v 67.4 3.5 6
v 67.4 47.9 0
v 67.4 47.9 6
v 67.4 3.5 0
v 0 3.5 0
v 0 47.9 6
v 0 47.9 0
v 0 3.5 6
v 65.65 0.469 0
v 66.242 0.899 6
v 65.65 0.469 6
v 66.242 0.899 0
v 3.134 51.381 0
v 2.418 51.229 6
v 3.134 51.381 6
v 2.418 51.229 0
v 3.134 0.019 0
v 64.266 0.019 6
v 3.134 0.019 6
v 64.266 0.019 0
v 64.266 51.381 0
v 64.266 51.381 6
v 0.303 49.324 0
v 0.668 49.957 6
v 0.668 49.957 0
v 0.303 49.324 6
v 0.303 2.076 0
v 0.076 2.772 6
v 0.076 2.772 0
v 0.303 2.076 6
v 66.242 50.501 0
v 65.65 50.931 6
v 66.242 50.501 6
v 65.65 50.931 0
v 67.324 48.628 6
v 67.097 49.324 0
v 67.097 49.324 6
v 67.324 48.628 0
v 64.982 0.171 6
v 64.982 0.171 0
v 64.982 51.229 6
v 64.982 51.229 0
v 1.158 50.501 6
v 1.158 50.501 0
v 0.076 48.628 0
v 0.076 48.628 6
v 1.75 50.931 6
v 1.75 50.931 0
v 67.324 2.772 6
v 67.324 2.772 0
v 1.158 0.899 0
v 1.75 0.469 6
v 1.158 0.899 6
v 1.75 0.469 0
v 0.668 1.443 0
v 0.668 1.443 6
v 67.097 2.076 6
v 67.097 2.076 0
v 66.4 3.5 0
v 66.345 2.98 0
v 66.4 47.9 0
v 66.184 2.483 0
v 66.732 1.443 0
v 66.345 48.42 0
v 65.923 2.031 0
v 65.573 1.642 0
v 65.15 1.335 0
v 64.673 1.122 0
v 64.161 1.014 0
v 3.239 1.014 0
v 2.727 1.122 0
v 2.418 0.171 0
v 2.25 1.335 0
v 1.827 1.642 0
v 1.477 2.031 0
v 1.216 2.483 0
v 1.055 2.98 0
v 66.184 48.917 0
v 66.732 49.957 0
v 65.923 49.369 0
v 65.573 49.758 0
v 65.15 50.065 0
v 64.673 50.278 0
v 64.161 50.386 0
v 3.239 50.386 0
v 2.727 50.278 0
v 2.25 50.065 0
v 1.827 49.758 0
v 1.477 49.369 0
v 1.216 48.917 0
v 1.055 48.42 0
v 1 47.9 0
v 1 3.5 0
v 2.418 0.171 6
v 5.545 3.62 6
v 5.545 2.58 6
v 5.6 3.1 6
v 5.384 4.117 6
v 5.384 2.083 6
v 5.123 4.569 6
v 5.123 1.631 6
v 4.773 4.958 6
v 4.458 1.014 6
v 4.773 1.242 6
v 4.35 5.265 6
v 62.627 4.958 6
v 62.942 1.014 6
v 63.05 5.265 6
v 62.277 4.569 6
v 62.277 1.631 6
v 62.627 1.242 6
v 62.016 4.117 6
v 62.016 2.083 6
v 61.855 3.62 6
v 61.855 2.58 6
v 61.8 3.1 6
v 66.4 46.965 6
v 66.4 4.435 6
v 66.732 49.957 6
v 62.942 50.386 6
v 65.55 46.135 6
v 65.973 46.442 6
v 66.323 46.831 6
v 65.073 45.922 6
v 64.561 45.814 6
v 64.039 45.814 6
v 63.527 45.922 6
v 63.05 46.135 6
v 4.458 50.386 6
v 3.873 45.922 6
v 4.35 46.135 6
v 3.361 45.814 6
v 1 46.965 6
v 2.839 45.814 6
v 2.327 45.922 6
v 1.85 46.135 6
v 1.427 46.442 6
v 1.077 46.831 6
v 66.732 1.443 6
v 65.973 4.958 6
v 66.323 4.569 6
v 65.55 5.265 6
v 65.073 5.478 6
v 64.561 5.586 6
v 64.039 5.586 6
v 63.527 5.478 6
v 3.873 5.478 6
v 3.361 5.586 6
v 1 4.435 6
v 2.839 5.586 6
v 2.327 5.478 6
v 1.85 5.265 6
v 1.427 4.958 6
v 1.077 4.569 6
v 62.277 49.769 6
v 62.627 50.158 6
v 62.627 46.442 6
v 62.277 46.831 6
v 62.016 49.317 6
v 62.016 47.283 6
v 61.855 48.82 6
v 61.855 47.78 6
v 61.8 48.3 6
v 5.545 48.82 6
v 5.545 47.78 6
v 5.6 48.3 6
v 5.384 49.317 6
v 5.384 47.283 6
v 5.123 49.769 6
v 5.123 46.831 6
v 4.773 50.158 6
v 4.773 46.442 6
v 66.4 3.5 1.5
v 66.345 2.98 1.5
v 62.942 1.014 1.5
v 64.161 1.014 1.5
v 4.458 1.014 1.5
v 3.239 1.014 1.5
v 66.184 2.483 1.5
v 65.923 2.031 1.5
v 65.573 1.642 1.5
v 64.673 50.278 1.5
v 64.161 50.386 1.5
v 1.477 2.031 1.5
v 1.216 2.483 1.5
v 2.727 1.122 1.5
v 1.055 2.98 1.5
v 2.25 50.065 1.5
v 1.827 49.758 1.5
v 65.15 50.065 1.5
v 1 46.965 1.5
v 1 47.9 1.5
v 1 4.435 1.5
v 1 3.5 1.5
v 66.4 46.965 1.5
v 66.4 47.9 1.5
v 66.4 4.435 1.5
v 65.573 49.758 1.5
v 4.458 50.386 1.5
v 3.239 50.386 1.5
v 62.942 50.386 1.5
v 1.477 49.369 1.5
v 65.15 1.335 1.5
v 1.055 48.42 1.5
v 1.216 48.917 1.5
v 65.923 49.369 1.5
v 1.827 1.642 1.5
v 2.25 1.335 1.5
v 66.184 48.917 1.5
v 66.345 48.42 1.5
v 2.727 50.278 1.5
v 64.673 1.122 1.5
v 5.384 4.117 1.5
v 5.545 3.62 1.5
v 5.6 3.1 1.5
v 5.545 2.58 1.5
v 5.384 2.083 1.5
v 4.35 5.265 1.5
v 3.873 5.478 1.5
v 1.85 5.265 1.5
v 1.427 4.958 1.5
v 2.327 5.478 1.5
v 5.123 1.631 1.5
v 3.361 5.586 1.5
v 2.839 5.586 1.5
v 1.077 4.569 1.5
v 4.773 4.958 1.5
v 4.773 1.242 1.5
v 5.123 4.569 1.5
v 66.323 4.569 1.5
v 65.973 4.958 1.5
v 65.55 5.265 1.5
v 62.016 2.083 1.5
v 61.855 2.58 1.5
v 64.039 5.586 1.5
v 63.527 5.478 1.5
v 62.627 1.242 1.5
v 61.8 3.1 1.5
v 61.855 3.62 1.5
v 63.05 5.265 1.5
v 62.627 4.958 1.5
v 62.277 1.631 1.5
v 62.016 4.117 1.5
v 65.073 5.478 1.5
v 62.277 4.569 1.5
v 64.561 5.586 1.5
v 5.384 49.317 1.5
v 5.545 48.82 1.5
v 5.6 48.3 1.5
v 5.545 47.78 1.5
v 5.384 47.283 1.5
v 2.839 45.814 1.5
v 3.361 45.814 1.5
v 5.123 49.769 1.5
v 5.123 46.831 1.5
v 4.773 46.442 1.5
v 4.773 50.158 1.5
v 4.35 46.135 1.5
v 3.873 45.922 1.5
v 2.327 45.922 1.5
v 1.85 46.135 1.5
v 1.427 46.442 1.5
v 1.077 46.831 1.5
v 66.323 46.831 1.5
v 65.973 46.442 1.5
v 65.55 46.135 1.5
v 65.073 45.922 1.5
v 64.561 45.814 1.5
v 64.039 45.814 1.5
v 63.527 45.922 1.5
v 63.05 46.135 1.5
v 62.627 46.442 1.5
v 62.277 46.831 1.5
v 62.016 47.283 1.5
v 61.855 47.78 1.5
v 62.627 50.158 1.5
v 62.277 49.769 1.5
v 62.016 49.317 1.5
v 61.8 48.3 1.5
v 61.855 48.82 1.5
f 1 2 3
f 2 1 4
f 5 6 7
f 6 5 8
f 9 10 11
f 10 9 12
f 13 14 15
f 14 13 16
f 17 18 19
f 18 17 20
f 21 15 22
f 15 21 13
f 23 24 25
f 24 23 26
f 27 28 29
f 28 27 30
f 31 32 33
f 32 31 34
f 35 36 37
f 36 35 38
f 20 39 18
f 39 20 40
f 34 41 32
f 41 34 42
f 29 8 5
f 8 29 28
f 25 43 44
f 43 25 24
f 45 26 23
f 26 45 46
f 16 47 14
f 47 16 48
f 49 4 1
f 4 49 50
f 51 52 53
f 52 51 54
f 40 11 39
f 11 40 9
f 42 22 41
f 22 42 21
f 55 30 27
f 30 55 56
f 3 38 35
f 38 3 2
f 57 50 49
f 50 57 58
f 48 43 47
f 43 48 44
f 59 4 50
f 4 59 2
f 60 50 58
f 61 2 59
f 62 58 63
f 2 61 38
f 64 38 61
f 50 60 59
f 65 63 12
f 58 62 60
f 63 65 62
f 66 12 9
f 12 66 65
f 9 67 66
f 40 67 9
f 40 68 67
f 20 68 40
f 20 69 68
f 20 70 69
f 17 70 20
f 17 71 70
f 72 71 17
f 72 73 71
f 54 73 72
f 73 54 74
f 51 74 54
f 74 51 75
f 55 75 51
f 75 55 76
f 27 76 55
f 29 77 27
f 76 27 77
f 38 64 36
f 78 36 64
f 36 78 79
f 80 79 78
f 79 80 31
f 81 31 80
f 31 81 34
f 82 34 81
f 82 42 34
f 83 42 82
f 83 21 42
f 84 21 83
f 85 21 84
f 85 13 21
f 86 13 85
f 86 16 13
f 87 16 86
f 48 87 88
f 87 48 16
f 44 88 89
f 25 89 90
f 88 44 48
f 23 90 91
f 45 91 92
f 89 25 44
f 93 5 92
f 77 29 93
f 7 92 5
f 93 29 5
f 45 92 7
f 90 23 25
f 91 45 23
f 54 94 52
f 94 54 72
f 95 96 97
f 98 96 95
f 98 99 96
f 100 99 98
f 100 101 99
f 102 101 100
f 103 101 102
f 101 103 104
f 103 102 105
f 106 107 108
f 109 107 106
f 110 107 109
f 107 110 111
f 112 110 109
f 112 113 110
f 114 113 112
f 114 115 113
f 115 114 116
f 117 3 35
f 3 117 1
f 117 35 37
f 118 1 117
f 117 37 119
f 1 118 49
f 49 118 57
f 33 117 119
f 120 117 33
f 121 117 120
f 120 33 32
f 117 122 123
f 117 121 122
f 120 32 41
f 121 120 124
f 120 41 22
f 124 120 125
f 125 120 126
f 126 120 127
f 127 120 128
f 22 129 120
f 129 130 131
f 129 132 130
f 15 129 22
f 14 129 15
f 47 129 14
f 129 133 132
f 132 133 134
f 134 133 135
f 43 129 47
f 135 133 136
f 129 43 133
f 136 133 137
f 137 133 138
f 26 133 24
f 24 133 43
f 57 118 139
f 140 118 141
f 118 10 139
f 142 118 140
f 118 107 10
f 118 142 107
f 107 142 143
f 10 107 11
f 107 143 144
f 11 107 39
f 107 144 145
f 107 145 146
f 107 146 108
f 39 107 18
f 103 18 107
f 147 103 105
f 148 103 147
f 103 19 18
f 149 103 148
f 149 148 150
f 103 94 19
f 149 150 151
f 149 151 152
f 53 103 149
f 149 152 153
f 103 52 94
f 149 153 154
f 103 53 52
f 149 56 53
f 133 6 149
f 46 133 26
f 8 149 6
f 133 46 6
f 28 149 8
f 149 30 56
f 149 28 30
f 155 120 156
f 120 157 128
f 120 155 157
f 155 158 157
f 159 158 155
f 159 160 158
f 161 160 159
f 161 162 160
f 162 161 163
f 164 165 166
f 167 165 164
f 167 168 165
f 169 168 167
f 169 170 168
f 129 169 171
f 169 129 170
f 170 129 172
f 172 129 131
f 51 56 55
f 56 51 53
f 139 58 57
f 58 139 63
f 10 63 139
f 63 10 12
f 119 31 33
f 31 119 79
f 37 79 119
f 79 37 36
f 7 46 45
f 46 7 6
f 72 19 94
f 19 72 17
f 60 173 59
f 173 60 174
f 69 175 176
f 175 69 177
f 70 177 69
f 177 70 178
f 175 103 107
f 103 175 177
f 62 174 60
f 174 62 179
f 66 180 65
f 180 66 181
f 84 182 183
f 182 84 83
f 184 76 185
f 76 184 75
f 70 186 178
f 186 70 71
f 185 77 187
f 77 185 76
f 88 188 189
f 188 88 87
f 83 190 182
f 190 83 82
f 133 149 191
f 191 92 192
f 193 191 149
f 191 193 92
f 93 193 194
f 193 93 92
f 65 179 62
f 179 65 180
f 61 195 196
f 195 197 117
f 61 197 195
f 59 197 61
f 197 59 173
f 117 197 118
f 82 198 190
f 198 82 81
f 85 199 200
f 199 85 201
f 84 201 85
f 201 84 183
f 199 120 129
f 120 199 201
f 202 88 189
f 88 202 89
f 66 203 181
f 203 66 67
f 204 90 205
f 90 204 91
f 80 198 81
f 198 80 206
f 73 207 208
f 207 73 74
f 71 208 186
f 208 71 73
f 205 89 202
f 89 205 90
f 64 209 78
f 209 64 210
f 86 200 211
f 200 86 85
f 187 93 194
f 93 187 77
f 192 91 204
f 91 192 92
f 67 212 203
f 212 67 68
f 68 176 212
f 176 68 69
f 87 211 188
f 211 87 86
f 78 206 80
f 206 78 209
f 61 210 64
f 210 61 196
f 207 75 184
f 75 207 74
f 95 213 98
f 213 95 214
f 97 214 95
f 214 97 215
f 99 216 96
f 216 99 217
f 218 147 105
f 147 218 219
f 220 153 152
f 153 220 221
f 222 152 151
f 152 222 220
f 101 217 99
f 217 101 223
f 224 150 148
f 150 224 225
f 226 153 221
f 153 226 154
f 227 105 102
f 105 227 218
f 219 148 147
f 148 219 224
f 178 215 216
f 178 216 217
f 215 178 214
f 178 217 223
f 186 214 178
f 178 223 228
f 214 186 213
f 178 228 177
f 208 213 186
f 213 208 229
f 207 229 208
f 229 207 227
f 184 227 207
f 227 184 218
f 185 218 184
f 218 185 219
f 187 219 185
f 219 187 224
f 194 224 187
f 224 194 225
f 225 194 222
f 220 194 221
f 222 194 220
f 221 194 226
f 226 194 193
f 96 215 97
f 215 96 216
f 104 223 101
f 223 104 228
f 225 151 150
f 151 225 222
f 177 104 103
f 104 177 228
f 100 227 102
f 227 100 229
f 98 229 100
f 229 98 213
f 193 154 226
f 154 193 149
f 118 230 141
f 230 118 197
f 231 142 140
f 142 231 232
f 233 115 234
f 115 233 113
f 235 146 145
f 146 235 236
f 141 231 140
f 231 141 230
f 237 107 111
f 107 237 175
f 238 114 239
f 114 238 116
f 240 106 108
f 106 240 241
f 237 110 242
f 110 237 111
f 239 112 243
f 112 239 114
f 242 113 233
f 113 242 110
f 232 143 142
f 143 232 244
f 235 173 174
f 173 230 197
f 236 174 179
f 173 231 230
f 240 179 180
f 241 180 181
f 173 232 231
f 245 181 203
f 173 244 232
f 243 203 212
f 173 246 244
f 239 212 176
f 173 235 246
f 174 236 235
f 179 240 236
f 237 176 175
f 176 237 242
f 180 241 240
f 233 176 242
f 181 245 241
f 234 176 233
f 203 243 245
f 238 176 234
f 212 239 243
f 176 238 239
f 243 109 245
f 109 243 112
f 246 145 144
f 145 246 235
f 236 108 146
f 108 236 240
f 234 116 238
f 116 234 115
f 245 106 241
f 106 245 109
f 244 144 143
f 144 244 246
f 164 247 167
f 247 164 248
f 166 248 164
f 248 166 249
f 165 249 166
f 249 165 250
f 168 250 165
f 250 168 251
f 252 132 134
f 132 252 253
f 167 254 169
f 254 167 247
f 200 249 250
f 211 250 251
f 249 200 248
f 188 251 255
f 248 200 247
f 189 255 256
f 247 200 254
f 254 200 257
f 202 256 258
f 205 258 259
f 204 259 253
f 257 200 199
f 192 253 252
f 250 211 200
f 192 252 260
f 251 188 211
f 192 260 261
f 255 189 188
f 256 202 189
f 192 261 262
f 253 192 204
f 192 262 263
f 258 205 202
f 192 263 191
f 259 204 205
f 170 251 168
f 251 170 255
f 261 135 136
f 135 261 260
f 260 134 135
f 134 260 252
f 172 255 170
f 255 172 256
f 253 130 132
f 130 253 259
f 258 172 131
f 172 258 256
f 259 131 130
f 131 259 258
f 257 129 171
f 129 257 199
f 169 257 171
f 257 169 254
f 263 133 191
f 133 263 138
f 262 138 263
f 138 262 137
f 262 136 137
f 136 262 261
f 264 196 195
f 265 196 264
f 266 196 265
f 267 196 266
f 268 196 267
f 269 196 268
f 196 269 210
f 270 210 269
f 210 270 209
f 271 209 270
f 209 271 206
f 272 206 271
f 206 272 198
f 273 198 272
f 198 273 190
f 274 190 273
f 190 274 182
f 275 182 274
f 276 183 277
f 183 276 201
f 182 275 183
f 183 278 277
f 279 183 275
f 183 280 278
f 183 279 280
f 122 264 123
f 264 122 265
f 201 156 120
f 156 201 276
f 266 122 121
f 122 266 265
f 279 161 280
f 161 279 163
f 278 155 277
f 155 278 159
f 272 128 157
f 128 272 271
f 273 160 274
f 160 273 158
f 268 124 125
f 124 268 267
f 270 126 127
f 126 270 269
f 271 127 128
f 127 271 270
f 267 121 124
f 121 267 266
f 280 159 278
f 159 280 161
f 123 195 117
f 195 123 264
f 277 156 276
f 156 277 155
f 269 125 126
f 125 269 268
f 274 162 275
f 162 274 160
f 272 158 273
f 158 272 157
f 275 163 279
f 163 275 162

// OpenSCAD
$fn = 30;


tp_h = 1.6;
tp_w = 65.4;
tp_d = 49.4;
tp_r = 2.5;

wall_t = 1;

box_h = 6;
box_w = tp_w + 2*wall_t;
box_d = tp_d + 2*wall_t;
box_r = tp_r + wall_t;

pillar_h = box_h - 1.5;
pillar_overlap = 0.4;

module rounded_cube(x, y, z, r) {
    hull() {
        translate([r, r, 0])
        cylinder(r=r, h=z);
        translate([x-r, r, 0])
        cylinder(r=r, h=z);
        translate([x-r, y-r, 0])
        cylinder(r=r, h=z);
        translate([r, y-r, 0])
        cylinder(r=r, h=z);
    }
}


module touchpad_case() {
    difference() {
        union() {
            difference() {
                rounded_cube(box_w, box_d, box_h, box_r);
                translate([wall_t, wall_t, -1])
                    rounded_cube(tp_w, tp_d, box_h + 2, tp_r);
            }
            // corner pillars
            translate([wall_t + tp_r - pillar_overlap, wall_t + tp_r - pillar_overlap, box_h - pillar_h])
                cylinder(r=tp_r, h=pillar_h);
            translate([wall_t + tp_w - tp_r + pillar_overlap, wall_t + tp_r - pillar_overlap, box_h - pillar_h])
                cylinder(r=tp_r, h=pillar_h);
            translate([wall_t + tp_r - pillar_overlap, wall_t + tp_d - tp_r + pillar_overlap, box_h - pillar_h])
                cylinder(r=tp_r, h=pillar_h);
            translate([wall_t + tp_w - tp_r + pillar_overlap, wall_t + tp_d - tp_r + pillar_overlap, box_h - pillar_h])
                cylinder(r=tp_r, h=pillar_h);
        }
    }
}

touchpad_case();
